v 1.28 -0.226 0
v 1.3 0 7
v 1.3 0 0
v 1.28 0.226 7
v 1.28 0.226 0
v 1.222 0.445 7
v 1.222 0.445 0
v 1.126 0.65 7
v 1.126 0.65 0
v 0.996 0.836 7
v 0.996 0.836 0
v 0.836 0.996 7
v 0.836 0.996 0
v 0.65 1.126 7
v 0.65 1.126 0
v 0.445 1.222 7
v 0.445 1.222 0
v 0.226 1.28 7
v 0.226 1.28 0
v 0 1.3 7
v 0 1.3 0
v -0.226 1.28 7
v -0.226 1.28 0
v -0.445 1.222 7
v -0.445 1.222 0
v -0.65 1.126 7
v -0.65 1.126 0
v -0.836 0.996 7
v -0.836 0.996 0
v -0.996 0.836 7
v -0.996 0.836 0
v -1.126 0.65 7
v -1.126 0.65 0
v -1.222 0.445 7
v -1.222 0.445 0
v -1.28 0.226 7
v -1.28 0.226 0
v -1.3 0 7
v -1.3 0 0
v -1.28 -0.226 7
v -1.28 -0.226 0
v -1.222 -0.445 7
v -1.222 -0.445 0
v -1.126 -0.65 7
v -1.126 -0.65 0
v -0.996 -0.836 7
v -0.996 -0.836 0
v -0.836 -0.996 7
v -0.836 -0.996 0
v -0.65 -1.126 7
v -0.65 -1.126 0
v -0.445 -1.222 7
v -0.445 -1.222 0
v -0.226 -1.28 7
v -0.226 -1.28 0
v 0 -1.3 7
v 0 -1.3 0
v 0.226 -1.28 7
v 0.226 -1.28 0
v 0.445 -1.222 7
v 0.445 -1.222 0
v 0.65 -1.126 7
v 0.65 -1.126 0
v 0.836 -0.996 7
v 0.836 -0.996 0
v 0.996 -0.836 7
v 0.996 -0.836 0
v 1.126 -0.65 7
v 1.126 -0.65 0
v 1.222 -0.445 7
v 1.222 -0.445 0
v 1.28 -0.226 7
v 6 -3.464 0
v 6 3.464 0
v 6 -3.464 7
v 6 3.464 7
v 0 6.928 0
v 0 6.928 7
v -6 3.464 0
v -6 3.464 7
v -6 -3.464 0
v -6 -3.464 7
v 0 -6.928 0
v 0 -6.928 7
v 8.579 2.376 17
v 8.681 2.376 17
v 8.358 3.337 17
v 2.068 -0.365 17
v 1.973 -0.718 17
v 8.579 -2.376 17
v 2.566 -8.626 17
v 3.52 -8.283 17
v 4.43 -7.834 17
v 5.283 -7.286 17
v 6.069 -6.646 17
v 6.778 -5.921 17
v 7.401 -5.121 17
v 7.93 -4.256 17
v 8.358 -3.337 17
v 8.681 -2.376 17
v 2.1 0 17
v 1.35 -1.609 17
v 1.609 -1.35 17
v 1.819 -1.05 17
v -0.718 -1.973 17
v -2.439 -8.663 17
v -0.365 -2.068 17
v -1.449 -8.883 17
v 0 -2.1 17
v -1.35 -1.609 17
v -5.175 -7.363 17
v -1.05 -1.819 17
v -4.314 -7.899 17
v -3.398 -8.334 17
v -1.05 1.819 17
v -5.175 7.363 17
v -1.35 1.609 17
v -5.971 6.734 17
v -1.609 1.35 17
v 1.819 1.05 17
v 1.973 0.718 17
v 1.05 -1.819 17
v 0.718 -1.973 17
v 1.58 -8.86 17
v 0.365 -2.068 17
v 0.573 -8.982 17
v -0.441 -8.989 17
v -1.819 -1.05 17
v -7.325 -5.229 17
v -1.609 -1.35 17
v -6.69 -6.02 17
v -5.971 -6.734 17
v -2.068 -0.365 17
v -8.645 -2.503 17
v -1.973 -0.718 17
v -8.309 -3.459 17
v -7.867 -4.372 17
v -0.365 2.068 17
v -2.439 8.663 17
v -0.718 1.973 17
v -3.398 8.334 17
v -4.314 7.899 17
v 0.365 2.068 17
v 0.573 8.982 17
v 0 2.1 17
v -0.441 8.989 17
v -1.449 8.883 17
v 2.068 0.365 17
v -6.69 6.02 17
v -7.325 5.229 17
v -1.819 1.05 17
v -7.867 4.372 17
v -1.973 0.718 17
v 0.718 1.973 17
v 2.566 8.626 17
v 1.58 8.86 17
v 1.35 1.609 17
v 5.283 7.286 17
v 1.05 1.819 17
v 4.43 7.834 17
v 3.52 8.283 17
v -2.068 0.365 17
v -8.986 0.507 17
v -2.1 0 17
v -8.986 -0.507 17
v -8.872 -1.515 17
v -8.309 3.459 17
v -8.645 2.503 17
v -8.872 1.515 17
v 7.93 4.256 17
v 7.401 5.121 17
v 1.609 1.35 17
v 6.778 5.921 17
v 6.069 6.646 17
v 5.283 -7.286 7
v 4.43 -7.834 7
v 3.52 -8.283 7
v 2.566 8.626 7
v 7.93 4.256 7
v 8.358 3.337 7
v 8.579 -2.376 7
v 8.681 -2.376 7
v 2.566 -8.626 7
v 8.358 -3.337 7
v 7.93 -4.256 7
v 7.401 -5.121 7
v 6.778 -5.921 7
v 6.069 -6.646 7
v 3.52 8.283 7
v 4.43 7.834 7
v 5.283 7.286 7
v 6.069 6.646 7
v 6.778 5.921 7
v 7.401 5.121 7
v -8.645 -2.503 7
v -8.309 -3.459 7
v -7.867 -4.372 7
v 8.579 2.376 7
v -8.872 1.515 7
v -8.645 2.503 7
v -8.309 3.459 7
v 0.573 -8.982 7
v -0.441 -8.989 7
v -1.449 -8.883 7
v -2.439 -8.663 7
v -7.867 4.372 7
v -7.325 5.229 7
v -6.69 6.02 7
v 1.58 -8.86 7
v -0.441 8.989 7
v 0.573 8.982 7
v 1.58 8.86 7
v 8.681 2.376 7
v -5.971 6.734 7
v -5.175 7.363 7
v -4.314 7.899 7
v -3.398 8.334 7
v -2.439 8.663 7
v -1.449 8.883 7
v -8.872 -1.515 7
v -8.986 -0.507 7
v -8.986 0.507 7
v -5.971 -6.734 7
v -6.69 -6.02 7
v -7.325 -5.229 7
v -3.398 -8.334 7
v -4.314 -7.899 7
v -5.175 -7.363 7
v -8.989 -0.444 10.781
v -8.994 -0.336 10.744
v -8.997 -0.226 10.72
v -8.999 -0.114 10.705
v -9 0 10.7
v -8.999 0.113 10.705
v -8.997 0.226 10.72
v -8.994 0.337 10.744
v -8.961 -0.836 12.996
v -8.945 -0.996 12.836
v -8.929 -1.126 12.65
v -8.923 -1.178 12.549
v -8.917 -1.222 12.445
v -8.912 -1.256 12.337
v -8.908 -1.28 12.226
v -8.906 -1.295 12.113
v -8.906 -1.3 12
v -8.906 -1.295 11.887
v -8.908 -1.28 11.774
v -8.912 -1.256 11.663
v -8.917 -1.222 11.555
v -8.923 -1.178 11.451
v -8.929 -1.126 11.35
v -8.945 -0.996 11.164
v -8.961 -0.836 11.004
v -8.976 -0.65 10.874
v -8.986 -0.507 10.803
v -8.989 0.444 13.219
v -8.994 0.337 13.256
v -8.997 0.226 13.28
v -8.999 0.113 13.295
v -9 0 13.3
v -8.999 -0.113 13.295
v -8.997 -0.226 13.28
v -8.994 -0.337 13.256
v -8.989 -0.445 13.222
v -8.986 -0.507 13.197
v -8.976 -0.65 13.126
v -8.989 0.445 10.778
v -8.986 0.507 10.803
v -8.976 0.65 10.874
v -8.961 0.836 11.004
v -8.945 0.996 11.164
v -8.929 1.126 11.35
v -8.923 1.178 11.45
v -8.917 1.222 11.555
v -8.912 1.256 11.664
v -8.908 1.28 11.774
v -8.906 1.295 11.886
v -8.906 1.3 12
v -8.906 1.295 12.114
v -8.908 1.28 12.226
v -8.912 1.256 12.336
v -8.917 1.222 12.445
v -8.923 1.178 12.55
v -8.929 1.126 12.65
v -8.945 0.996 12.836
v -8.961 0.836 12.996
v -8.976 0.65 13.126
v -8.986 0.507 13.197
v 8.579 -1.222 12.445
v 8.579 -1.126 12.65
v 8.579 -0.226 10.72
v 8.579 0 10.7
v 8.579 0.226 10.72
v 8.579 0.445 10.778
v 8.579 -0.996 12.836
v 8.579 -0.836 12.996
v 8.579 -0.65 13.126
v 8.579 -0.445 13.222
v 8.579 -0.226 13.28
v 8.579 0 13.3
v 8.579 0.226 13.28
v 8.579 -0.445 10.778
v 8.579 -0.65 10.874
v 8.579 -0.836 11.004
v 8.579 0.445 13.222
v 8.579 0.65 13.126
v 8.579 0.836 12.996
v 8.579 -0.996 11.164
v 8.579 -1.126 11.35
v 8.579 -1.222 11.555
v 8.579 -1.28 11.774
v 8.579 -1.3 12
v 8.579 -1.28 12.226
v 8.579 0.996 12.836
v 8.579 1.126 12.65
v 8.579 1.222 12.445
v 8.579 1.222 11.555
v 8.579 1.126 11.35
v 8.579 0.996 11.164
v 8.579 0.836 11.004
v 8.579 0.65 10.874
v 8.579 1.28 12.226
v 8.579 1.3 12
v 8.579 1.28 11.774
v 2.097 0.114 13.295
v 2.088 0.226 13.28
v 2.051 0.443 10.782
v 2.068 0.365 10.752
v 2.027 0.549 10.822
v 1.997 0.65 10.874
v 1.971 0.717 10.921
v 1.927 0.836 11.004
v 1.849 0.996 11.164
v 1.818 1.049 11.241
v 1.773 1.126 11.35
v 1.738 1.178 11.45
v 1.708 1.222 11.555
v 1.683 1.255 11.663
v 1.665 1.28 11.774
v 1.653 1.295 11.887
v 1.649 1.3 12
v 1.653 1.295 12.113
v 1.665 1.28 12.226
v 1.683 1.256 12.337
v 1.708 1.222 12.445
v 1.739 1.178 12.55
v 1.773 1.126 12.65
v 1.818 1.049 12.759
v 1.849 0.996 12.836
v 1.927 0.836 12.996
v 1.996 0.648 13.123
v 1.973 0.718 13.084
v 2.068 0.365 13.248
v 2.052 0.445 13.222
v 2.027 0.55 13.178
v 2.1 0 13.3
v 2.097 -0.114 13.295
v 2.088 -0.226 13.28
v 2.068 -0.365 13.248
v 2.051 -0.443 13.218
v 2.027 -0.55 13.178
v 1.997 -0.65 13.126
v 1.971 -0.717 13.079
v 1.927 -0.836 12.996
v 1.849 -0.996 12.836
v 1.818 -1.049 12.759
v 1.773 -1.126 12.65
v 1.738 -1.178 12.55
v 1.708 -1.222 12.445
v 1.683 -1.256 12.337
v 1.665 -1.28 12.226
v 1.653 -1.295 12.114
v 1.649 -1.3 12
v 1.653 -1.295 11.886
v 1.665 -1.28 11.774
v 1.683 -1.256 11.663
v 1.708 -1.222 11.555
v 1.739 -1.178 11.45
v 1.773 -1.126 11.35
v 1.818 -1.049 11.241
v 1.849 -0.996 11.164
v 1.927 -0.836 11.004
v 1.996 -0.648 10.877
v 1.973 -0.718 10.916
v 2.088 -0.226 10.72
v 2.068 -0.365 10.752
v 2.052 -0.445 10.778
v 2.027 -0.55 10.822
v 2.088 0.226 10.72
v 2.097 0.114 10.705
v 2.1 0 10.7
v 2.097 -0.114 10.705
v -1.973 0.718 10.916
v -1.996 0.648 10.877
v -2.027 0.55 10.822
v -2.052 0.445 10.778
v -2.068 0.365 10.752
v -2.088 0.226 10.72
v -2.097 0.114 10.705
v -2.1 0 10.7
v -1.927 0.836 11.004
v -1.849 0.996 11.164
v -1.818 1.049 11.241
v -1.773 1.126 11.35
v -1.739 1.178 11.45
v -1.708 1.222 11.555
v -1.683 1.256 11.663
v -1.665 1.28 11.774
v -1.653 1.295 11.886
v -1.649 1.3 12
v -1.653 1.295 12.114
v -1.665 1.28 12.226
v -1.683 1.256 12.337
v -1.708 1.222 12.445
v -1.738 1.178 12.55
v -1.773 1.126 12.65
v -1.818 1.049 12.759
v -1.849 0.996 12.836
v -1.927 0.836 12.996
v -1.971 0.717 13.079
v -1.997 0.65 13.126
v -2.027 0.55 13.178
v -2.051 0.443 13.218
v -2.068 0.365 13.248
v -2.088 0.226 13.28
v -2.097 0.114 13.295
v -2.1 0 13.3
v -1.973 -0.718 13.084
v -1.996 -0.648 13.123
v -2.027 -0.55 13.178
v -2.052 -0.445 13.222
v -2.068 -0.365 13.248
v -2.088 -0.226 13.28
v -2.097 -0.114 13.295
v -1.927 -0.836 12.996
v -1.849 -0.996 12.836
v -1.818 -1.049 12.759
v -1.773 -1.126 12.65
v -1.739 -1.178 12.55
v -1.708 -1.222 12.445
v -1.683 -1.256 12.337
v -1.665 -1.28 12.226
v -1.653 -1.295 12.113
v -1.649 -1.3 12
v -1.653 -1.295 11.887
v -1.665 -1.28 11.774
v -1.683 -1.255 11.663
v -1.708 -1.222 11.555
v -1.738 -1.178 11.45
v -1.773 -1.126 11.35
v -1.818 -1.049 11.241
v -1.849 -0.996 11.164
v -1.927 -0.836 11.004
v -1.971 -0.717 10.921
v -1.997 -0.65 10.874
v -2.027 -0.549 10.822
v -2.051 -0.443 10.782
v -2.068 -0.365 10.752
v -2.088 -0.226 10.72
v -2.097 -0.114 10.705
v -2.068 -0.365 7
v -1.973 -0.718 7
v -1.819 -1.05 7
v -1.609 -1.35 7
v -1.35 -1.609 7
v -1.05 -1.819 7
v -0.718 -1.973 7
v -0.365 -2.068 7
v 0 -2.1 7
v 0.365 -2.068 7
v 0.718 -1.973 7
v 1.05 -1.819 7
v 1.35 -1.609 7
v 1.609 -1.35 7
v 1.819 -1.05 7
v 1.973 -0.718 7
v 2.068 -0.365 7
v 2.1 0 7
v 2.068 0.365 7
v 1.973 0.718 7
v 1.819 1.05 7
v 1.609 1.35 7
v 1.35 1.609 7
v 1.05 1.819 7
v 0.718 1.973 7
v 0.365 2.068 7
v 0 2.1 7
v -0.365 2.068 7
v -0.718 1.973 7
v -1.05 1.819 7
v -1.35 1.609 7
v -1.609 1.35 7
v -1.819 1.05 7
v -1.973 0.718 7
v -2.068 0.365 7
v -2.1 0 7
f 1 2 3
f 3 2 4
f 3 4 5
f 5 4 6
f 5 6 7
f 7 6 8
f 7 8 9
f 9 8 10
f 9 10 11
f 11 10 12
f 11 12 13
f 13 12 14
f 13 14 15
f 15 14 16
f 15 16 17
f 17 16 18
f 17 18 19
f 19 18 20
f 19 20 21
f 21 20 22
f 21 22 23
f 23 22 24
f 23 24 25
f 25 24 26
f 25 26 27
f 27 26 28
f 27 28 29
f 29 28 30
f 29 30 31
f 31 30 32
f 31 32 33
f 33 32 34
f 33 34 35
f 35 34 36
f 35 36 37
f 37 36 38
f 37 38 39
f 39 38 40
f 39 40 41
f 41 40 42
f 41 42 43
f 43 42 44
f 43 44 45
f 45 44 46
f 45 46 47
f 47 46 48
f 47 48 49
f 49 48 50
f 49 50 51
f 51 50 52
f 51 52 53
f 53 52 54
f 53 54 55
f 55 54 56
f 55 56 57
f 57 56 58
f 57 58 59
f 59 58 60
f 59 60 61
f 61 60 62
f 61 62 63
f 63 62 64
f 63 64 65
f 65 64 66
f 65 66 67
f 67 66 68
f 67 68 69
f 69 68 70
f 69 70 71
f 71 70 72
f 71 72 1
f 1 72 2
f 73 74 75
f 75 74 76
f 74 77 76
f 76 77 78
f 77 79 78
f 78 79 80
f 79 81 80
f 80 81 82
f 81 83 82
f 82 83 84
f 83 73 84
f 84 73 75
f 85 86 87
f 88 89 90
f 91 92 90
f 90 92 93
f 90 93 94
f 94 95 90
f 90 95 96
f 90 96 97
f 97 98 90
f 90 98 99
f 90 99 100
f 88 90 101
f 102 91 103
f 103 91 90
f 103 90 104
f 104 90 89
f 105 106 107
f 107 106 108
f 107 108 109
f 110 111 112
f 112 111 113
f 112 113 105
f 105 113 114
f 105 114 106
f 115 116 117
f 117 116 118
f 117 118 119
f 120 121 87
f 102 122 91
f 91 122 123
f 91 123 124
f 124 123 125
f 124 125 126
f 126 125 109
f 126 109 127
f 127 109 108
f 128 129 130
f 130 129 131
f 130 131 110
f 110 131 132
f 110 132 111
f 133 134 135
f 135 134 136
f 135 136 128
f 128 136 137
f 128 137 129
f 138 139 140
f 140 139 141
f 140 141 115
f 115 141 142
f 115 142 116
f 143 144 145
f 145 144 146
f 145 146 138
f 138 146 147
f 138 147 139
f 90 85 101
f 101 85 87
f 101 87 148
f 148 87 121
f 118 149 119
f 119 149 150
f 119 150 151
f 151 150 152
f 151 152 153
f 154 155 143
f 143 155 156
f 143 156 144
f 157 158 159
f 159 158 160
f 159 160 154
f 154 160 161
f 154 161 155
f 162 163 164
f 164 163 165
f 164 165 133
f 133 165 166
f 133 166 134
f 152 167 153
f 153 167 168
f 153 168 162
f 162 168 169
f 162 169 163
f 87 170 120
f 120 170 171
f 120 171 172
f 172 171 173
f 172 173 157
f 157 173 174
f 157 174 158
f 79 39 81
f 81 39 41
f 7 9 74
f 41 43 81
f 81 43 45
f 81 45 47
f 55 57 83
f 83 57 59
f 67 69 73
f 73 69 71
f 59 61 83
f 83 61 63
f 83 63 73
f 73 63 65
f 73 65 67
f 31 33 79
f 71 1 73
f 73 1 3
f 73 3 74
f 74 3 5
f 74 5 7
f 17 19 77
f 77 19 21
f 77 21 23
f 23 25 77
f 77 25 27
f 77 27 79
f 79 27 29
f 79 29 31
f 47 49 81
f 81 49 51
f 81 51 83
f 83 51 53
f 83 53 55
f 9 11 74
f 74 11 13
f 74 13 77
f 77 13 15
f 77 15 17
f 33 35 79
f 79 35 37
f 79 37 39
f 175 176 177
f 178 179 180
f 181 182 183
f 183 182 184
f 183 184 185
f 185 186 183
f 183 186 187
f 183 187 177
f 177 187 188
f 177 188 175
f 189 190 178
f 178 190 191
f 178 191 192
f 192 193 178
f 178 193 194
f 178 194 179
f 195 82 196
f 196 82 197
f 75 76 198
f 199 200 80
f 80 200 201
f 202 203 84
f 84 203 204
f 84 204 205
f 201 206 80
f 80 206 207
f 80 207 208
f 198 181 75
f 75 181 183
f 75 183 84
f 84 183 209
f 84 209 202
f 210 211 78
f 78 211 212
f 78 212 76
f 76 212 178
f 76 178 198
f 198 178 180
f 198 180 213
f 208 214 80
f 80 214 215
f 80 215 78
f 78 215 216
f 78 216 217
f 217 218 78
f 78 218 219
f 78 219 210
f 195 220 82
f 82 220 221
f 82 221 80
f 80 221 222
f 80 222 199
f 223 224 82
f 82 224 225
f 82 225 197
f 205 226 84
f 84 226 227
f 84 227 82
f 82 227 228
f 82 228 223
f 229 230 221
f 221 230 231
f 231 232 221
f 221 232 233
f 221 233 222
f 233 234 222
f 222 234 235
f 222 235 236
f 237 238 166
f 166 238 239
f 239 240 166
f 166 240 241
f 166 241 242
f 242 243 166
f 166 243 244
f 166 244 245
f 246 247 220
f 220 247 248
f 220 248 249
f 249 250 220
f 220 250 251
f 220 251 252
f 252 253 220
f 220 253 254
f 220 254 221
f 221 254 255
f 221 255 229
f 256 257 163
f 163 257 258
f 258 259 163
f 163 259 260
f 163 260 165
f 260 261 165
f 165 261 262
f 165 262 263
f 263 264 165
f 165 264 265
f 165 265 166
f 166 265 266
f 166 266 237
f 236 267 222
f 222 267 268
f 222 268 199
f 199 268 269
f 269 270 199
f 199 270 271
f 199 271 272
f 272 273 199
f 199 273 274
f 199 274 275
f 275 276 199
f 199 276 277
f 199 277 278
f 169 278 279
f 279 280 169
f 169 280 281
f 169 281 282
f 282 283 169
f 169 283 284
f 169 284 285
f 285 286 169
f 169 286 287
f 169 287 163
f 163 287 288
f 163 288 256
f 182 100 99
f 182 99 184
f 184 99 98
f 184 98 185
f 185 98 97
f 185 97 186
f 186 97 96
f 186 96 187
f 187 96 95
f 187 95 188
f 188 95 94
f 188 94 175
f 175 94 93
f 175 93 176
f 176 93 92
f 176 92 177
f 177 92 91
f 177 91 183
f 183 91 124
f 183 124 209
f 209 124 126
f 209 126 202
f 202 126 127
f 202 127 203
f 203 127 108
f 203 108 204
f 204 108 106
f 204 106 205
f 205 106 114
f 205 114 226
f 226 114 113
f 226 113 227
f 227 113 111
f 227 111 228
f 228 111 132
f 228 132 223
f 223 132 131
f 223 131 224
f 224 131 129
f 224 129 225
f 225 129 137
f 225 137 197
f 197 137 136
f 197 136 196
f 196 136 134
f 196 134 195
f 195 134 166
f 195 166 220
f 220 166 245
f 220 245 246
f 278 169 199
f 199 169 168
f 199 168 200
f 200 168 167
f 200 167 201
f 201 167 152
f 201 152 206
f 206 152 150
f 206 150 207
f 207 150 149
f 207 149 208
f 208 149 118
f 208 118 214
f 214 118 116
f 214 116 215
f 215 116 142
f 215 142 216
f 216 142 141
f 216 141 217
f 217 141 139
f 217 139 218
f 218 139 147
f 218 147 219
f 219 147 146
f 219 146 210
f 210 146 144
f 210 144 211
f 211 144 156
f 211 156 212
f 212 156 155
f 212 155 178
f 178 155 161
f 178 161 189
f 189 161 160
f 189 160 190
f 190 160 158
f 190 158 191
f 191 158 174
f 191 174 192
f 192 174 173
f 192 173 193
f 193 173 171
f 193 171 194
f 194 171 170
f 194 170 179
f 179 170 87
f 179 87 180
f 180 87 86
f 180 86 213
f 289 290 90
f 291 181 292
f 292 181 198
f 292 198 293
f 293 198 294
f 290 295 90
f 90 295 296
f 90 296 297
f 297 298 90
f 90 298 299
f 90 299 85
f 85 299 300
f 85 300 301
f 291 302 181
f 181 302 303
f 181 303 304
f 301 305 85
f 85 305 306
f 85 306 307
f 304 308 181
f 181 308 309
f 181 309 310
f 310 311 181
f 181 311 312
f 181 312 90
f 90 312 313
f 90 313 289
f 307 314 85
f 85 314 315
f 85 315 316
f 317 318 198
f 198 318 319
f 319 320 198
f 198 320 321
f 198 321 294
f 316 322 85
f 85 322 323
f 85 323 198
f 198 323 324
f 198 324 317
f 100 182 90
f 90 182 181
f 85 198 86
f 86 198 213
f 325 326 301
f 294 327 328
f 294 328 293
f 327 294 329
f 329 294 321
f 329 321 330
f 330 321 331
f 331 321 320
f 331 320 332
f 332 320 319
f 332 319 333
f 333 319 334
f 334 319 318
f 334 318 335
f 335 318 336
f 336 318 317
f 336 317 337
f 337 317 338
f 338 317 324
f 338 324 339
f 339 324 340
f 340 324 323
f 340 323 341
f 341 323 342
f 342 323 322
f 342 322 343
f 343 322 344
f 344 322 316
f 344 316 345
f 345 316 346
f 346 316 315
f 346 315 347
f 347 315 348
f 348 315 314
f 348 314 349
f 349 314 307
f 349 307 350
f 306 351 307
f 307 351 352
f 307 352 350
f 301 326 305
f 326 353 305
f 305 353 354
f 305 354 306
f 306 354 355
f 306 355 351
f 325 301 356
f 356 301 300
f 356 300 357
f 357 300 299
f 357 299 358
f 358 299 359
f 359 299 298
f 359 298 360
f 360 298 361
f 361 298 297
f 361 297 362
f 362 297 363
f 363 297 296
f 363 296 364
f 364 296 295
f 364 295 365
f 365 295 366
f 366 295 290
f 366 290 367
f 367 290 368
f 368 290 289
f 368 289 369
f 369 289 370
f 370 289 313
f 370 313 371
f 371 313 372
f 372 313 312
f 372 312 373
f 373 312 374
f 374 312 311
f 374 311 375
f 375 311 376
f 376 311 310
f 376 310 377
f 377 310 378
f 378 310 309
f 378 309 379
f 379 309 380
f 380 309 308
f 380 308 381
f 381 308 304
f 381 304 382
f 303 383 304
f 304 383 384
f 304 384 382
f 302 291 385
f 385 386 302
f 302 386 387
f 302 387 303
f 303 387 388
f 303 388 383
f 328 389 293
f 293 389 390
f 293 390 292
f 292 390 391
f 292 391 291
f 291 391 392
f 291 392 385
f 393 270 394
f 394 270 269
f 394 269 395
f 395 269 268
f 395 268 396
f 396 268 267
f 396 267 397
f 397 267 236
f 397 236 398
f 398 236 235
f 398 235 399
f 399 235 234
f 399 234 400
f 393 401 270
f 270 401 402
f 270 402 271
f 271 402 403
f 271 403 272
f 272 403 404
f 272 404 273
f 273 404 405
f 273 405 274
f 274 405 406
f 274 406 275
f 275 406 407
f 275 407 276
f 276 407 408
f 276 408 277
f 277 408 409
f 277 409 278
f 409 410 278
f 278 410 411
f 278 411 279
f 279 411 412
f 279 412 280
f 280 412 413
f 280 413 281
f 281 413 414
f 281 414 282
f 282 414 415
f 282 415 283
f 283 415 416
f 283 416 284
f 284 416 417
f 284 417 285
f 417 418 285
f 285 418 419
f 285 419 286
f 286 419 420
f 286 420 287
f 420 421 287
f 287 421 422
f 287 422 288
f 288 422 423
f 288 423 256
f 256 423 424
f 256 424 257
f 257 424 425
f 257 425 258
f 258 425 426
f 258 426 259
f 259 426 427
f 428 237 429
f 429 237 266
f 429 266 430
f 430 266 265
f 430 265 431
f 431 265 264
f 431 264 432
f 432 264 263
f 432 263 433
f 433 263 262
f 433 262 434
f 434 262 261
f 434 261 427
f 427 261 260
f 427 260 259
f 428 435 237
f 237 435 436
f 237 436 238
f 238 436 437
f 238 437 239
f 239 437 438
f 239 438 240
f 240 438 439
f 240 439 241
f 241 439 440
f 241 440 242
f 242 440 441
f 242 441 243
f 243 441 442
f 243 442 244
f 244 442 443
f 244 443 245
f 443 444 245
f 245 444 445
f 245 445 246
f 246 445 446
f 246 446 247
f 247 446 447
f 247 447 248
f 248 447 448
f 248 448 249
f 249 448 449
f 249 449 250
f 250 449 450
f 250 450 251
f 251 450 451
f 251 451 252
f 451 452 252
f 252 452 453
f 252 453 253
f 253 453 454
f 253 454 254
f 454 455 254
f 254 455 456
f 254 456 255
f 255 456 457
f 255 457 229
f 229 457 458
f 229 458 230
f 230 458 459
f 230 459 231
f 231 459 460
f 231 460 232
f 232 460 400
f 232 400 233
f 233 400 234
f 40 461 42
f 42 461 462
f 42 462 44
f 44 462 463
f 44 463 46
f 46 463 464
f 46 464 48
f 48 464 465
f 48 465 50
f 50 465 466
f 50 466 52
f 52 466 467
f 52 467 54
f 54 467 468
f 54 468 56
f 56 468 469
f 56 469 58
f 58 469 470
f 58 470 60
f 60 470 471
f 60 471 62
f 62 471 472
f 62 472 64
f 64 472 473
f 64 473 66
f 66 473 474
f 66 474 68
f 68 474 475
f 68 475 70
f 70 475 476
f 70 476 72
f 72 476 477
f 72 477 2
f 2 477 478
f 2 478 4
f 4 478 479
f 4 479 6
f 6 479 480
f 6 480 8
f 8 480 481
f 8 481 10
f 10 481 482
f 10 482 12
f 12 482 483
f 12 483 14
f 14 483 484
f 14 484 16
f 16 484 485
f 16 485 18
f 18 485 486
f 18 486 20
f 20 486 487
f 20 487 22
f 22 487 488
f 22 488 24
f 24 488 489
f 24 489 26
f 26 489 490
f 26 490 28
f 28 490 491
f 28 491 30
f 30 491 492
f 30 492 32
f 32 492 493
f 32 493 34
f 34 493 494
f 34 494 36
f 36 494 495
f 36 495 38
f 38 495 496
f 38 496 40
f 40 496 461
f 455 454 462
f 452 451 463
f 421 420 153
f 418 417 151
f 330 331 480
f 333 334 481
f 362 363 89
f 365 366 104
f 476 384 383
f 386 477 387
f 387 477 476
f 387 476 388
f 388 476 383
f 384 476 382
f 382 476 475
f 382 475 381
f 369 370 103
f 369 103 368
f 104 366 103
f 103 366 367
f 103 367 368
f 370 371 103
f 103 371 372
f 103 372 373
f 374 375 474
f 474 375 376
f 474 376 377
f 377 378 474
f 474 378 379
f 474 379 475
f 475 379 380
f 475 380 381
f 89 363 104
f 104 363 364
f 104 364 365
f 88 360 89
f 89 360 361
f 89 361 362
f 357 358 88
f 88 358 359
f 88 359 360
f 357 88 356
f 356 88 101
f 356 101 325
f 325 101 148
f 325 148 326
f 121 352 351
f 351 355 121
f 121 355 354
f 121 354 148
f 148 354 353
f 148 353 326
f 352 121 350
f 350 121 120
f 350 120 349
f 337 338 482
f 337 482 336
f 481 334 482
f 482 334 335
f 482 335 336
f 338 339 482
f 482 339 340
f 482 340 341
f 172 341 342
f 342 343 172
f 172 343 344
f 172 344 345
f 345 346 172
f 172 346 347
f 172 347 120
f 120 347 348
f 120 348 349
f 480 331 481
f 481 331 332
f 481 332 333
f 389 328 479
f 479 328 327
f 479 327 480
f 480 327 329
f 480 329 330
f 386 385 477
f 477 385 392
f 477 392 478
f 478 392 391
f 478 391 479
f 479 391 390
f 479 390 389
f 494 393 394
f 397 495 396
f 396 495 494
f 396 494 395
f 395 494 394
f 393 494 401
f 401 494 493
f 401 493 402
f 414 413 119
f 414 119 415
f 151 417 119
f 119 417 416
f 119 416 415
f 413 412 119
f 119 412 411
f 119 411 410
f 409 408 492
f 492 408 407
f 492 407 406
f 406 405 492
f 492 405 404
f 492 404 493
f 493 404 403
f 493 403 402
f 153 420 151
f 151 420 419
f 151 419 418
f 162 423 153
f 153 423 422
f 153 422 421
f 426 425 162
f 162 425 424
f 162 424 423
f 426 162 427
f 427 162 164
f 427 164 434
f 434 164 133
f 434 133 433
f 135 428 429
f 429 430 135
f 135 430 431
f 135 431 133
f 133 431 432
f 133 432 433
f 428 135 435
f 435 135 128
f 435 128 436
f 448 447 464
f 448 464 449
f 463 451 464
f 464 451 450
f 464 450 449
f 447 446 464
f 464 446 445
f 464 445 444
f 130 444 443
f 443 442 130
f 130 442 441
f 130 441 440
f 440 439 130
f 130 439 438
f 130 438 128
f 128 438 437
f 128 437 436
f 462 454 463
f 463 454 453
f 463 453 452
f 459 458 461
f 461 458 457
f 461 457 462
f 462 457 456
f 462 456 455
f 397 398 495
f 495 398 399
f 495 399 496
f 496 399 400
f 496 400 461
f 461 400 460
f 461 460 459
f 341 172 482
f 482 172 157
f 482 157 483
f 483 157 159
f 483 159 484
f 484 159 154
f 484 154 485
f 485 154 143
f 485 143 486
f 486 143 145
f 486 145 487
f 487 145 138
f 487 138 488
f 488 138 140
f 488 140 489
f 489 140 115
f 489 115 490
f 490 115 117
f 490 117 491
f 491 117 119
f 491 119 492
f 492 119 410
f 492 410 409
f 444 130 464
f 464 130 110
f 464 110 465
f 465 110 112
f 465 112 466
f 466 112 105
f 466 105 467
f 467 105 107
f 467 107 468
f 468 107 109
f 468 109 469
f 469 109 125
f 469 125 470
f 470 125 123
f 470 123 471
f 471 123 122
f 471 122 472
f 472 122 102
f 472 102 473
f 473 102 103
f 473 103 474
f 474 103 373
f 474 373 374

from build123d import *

# Parameters (mm, degrees)
BOSS_EXTRU_1_DEPTH      = 17
ESQUISSE2_R             = 1.3
ENL_V_MAT_EXTRU_1_DEPTH = 17
ESQUISSE3_R             = 9
ESQUISSE3_R_2           = 1.3
BOSS_EXTRU_2_DEPTH      = 10
ESQUISSE4_W             = 0.84262724
ESQUISSE4_H             = 4.751474998
ENL_V_MAT_EXTRU_2_DEPTH = 12
ESQUISSE5_R             = 1.3
ENL_V_MAT_EXTRU_3_DEPTH = 27
ESQUISSE6_R             = 2.1
ENL_V_MAT_EXTRU_4_DEPTH = 10


with BuildPart() as part:
    # Esquisse1 → Boss.-Extru.1 (new body)
    with BuildSketch(Plane.XY):
        Polygon((6, 3.464101615), (0, 6.92820323), (-6, 3.464101615), (-6, -3.464101615), (0, -6.92820323), (6, -3.464101615), align=None)
    extrude(amount=BOSS_EXTRU_1_DEPTH)

    # Esquisse2 → Enlèv. mat.-Extru.1 (cut)
    with BuildSketch(Plane.XY.offset(17)):
        Circle(ESQUISSE2_R)
    extrude(amount=-ENL_V_MAT_EXTRU_1_DEPTH, mode=Mode.SUBTRACT)

    # Esquisse3 → Boss.-Extru.2 (add)
    with BuildSketch(Plane.XY.offset(17)):
        Circle(ESQUISSE3_R)
        Circle(ESQUISSE3_R_2, mode=Mode.SUBTRACT)
    extrude(amount=-BOSS_EXTRU_2_DEPTH)

    # Esquisse4 → Enlèv. mat.-Extru.2 (cut)
    with BuildSketch(Plane.XY.offset(17)):
        with Locations((9, 0)):
            Rectangle(ESQUISSE4_W, ESQUISSE4_H)
    extrude(amount=-ENL_V_MAT_EXTRU_2_DEPTH, mode=Mode.SUBTRACT)

    # Esquisse5 → Enlèv. mat.-Extru.3 (cut)
    with BuildSketch(Plane(origin=(8.57868638, 0, 0), x_dir=(0, 0, -1), z_dir=(1, 0, 0))):
        with Locations((-12, 0)):
            Circle(ESQUISSE5_R)
    extrude(amount=-ENL_V_MAT_EXTRU_3_DEPTH, mode=Mode.SUBTRACT)

    # Esquisse6 → Enlèv. mat.-Extru.4 (cut)
    with BuildSketch(Plane.XY.offset(17)):
        Circle(ESQUISSE6_R)
    extrude(amount=-ENL_V_MAT_EXTRU_4_DEPTH, mode=Mode.SUBTRACT)


solid = part.part
